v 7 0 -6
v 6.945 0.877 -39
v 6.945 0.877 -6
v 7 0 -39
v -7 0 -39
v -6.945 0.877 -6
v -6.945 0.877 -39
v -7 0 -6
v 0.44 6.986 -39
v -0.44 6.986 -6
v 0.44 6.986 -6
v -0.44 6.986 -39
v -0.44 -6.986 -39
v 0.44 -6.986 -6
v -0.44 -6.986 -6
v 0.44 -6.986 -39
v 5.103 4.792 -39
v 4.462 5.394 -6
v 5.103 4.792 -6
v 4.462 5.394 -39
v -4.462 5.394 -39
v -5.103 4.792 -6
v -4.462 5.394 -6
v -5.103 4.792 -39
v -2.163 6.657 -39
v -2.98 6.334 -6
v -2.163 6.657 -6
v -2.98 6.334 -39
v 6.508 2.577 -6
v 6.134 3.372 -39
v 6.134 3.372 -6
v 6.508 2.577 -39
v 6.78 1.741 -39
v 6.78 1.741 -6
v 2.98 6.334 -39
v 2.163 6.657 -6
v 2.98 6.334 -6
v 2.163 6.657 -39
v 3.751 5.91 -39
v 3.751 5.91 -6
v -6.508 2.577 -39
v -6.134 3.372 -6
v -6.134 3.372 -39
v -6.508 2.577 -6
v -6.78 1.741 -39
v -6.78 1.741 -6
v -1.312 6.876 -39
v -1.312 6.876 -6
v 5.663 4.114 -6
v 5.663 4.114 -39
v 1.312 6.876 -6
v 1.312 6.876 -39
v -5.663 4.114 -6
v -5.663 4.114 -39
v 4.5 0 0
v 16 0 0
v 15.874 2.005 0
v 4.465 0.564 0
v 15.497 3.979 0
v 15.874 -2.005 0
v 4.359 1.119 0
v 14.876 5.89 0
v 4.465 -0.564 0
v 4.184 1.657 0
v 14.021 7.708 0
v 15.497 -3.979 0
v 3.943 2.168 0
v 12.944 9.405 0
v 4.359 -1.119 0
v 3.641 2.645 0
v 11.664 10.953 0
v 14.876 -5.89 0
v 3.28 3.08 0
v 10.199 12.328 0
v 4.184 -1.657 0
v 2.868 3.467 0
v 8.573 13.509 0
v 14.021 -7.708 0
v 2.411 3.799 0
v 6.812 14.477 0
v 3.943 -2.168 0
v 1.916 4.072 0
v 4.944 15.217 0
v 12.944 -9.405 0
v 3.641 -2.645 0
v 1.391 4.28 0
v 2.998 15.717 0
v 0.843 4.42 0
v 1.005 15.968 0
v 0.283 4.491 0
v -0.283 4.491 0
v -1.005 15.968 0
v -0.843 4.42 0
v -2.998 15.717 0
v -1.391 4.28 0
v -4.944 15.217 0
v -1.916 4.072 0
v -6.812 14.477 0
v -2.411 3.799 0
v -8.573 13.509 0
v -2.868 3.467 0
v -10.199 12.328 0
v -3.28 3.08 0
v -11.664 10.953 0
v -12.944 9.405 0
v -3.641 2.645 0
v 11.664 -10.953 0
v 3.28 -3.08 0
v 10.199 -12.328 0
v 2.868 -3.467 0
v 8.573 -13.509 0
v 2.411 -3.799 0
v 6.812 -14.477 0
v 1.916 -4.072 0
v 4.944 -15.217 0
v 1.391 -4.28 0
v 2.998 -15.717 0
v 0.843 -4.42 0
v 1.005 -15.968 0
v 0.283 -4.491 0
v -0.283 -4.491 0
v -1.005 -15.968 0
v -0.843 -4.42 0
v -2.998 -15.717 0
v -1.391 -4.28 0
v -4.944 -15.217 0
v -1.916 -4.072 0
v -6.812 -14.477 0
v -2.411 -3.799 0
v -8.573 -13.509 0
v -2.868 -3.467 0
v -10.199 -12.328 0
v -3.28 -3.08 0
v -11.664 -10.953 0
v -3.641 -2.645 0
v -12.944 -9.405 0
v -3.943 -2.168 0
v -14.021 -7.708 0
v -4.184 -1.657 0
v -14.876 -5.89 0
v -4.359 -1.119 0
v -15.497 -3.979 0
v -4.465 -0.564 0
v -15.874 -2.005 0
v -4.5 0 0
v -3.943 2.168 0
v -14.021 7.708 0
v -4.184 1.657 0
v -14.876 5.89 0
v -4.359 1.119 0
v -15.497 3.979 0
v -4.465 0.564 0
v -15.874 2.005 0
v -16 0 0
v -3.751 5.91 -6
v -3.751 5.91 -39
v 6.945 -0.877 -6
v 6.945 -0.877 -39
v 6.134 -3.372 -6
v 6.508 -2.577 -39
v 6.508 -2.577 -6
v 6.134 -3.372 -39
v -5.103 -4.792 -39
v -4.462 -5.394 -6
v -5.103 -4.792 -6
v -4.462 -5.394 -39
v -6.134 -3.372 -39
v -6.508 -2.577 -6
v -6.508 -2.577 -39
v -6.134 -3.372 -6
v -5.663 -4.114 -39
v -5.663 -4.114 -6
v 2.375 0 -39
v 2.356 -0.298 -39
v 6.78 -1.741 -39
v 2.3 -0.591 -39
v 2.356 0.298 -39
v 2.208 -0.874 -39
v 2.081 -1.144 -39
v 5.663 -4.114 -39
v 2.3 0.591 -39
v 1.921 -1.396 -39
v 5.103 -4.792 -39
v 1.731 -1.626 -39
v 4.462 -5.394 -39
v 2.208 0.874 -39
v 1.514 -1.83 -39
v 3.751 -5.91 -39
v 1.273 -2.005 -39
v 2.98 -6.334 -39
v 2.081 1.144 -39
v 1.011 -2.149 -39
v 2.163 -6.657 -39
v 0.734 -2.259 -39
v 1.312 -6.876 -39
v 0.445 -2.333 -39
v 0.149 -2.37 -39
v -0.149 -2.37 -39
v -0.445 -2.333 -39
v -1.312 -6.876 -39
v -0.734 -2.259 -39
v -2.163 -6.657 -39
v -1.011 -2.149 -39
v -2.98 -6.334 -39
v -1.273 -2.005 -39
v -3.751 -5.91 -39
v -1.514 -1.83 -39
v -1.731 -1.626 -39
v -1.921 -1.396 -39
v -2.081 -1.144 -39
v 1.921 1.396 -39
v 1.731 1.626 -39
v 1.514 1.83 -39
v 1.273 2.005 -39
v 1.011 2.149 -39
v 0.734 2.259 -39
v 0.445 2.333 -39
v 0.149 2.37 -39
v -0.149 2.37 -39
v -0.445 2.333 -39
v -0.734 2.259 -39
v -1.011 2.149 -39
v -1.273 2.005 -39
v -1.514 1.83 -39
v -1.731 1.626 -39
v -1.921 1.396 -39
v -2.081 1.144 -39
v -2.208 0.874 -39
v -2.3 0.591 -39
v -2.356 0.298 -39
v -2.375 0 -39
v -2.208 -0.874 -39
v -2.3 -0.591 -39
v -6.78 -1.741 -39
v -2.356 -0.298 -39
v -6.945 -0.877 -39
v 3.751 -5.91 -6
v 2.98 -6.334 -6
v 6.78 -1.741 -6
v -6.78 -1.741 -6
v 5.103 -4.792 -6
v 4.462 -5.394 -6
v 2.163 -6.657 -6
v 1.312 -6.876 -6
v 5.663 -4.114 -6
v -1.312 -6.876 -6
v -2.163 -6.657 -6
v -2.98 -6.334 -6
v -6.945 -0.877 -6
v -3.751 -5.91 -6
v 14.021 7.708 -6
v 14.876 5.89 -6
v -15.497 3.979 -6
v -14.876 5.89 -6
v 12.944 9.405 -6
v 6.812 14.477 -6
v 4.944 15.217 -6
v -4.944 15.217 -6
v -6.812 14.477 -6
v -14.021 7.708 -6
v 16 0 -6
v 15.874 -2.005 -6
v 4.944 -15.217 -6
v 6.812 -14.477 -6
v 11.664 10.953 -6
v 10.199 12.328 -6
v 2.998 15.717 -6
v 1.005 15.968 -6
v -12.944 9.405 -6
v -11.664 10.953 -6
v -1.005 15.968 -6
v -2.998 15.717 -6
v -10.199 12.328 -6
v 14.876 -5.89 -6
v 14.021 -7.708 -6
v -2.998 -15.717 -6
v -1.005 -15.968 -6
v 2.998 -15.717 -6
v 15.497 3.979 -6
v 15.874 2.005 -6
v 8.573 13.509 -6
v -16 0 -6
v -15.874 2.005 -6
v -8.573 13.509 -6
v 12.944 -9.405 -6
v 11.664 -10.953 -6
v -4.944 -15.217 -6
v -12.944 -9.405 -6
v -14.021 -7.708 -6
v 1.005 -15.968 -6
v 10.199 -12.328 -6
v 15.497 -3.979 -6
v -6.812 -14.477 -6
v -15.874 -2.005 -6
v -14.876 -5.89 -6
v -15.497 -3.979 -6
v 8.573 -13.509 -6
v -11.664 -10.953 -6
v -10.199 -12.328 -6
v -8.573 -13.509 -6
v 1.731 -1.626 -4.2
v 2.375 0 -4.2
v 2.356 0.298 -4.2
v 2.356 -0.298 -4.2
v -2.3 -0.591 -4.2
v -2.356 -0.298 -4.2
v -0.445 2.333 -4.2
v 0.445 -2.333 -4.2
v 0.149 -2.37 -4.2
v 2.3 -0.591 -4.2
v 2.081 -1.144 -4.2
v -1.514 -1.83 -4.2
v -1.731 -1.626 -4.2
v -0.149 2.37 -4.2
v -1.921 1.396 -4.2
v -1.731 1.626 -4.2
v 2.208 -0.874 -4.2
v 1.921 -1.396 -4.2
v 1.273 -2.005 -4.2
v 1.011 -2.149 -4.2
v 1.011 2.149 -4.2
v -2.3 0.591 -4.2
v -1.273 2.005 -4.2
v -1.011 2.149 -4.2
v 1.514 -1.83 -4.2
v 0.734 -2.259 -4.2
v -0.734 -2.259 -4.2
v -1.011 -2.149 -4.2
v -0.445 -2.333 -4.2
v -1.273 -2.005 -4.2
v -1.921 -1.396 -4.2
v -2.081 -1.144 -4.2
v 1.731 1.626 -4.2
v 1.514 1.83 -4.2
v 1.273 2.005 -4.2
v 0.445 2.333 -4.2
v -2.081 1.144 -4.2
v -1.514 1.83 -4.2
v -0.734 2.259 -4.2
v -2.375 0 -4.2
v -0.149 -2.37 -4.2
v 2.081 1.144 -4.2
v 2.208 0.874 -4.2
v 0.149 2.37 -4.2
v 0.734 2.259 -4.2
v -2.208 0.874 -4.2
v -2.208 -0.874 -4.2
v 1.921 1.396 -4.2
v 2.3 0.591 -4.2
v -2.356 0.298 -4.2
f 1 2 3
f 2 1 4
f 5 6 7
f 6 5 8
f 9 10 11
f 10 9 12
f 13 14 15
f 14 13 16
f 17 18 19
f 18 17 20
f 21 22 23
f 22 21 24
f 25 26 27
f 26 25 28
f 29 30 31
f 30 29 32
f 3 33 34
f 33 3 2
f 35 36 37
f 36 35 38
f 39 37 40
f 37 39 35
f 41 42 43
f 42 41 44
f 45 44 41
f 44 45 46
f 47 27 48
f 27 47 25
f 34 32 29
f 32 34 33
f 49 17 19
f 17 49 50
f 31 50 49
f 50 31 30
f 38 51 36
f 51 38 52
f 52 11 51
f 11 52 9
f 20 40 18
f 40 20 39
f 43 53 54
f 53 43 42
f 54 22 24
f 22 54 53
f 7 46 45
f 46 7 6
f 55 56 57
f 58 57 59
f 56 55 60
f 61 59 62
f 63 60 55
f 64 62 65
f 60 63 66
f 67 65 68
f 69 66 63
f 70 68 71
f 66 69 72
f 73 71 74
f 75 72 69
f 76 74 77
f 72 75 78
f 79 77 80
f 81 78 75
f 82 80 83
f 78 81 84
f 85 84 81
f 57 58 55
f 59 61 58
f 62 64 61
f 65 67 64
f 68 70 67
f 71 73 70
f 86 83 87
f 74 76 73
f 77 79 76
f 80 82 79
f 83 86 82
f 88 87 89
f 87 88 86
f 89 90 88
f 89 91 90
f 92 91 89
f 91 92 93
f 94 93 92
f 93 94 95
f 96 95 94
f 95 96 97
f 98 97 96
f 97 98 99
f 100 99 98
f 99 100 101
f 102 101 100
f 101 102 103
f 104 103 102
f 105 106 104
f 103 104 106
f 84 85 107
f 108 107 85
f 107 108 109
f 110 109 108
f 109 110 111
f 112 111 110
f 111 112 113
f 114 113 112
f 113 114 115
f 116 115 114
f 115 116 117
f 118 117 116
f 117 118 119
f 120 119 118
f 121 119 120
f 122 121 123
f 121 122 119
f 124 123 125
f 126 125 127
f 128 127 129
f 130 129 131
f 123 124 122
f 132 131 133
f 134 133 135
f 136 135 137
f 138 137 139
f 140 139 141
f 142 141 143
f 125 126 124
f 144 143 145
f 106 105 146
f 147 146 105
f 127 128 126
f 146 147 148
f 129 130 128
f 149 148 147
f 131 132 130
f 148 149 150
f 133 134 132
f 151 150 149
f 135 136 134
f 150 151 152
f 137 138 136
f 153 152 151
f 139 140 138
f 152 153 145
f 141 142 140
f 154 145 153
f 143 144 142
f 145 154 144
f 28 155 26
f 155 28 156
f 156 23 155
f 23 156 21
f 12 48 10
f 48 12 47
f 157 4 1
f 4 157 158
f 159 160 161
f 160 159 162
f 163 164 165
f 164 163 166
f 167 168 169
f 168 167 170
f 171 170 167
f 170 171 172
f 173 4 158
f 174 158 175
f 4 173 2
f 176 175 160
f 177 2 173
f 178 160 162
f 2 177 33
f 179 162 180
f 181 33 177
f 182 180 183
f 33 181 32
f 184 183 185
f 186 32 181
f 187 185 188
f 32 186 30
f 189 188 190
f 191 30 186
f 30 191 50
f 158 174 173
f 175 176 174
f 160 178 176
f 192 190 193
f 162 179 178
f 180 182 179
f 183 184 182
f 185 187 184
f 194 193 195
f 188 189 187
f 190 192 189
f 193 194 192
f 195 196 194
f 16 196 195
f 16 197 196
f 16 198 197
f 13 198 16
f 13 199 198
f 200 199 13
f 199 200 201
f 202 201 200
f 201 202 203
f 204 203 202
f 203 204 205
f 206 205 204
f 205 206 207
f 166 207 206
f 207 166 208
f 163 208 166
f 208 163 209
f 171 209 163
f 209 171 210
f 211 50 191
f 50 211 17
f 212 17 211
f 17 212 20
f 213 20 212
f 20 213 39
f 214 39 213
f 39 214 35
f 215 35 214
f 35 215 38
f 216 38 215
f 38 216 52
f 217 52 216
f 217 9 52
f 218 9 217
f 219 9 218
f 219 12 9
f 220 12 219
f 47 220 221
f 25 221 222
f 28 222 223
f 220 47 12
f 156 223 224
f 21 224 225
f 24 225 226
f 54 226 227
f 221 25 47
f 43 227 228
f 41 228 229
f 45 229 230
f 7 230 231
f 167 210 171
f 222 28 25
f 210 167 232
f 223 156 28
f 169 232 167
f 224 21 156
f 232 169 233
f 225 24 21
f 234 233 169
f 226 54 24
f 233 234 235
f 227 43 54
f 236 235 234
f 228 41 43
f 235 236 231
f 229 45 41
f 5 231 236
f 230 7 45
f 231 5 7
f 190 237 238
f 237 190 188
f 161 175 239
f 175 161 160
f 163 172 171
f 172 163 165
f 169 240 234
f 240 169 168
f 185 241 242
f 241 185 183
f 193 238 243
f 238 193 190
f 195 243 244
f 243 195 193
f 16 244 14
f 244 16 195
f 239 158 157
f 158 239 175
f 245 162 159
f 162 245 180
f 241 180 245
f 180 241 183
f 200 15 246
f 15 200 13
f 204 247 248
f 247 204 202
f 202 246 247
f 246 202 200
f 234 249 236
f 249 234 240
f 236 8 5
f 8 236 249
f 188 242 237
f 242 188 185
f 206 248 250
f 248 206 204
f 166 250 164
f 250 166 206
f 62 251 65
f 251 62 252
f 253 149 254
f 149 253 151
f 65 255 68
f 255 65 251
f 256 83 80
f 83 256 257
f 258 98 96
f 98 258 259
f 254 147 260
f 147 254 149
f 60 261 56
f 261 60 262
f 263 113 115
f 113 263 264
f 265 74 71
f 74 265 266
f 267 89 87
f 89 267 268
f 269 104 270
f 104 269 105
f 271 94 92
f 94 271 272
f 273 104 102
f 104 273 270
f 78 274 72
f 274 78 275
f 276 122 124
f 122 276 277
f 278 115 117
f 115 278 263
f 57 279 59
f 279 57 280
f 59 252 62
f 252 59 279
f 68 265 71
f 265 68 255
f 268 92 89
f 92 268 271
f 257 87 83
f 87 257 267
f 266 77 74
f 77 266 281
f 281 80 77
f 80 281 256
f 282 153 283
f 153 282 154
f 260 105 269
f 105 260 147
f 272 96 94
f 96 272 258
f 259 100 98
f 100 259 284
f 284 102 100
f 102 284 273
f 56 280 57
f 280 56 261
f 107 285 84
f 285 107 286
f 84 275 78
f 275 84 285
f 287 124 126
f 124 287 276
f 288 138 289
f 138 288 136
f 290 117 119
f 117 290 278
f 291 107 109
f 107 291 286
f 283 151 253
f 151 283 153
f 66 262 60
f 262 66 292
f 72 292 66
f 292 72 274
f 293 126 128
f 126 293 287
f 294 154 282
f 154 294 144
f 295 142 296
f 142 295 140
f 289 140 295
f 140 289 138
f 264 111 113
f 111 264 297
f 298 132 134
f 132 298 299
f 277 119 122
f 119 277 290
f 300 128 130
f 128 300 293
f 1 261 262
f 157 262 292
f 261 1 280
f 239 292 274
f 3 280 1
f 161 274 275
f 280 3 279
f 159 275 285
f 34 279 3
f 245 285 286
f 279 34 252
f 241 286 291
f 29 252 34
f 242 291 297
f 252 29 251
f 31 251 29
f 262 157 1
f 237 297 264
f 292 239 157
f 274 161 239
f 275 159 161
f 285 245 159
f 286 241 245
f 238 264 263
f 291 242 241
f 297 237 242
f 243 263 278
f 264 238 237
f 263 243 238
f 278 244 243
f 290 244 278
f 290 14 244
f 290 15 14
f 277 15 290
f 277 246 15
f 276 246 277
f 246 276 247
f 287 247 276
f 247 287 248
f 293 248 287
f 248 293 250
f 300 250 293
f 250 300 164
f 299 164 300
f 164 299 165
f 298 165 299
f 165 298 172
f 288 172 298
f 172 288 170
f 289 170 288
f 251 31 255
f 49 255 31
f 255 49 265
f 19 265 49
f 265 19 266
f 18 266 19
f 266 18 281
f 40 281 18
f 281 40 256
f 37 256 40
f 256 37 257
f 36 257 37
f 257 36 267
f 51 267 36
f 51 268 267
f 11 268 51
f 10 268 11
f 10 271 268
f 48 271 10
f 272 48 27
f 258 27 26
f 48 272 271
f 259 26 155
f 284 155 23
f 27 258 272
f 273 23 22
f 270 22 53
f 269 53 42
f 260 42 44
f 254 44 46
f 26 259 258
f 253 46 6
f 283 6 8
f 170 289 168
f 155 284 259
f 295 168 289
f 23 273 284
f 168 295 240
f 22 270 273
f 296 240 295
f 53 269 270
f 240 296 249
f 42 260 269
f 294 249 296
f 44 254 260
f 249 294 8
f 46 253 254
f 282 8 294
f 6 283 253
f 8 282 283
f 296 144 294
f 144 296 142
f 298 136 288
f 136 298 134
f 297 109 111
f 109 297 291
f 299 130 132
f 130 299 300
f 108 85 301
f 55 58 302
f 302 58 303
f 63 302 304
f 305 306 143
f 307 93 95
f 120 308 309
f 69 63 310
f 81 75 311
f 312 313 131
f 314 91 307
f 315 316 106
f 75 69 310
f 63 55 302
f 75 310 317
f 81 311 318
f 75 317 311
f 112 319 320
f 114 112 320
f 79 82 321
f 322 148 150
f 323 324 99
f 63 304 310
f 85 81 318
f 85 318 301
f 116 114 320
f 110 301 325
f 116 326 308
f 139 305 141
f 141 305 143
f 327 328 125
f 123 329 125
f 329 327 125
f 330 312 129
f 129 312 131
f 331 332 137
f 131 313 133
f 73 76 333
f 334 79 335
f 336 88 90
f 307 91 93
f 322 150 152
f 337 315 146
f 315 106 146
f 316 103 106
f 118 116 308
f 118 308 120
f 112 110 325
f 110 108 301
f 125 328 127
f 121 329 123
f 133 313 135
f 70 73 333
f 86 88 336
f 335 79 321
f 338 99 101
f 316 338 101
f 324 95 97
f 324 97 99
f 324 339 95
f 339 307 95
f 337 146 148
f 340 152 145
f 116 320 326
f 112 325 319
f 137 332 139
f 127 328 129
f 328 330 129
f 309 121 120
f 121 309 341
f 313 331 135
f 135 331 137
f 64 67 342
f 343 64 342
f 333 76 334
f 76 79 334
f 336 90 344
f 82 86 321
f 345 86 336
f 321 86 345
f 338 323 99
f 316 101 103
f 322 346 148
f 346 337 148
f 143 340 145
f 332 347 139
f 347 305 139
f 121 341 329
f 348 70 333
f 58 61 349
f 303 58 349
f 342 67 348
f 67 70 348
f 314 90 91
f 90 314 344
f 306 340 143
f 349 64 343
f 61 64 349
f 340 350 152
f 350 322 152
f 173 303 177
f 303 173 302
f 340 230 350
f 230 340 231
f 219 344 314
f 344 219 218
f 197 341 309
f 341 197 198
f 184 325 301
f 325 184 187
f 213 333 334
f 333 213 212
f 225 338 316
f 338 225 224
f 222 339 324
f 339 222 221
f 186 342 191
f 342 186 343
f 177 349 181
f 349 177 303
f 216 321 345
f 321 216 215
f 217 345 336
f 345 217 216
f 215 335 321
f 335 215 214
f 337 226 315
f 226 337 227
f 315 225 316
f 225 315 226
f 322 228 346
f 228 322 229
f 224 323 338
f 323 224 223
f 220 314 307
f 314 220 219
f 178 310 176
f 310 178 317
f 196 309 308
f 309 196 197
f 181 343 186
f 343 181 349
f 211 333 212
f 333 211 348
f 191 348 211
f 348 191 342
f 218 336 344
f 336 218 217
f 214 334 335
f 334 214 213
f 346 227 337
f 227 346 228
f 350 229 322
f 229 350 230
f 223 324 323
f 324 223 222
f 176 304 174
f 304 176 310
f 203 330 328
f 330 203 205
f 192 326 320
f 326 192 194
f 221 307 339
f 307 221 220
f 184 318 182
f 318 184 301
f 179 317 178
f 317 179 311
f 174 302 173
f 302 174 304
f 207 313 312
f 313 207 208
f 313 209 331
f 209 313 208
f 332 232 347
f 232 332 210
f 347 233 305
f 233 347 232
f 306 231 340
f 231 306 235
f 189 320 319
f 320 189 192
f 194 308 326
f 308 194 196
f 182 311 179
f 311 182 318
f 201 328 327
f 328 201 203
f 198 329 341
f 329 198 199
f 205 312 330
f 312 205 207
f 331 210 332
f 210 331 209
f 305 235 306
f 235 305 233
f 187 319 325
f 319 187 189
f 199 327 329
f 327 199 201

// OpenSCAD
$fn = 50;


difference() {
	union() {
		translate(v = [0, 0, -39.0000000000]) {
			cylinder(h = 39, r = 7.0000000000);
		}
		translate(v = [0, 0, -6.0000000000]) {
			cylinder(h = 6, r = 16.0000000000);
		}
	}
	union() {
		translate(v = [0, 0, 0]) {
			rotate(a = [0, 0, 0]) {
				difference() {
					union() {
						#translate(v = [0, 0, -39.0000000000]) {
							cylinder(h = 39, r = 2.2500000000);
						}
						#translate(v = [0, 0, -4.2000000000]) {
							cylinder(h = 4.2000000000, r1 = 2.3750000000, r2 = 4.5000000000);
						}
						#translate(v = [0, 0, -39.0000000000]) {
							cylinder(h = 39, r = 2.3750000000);
						}
						#translate(v = [0, 0, -39.0000000000]) {
							cylinder(h = 39, r = 2.2500000000);
						}
					}
					union();
				}
			}
		}
	}
}
